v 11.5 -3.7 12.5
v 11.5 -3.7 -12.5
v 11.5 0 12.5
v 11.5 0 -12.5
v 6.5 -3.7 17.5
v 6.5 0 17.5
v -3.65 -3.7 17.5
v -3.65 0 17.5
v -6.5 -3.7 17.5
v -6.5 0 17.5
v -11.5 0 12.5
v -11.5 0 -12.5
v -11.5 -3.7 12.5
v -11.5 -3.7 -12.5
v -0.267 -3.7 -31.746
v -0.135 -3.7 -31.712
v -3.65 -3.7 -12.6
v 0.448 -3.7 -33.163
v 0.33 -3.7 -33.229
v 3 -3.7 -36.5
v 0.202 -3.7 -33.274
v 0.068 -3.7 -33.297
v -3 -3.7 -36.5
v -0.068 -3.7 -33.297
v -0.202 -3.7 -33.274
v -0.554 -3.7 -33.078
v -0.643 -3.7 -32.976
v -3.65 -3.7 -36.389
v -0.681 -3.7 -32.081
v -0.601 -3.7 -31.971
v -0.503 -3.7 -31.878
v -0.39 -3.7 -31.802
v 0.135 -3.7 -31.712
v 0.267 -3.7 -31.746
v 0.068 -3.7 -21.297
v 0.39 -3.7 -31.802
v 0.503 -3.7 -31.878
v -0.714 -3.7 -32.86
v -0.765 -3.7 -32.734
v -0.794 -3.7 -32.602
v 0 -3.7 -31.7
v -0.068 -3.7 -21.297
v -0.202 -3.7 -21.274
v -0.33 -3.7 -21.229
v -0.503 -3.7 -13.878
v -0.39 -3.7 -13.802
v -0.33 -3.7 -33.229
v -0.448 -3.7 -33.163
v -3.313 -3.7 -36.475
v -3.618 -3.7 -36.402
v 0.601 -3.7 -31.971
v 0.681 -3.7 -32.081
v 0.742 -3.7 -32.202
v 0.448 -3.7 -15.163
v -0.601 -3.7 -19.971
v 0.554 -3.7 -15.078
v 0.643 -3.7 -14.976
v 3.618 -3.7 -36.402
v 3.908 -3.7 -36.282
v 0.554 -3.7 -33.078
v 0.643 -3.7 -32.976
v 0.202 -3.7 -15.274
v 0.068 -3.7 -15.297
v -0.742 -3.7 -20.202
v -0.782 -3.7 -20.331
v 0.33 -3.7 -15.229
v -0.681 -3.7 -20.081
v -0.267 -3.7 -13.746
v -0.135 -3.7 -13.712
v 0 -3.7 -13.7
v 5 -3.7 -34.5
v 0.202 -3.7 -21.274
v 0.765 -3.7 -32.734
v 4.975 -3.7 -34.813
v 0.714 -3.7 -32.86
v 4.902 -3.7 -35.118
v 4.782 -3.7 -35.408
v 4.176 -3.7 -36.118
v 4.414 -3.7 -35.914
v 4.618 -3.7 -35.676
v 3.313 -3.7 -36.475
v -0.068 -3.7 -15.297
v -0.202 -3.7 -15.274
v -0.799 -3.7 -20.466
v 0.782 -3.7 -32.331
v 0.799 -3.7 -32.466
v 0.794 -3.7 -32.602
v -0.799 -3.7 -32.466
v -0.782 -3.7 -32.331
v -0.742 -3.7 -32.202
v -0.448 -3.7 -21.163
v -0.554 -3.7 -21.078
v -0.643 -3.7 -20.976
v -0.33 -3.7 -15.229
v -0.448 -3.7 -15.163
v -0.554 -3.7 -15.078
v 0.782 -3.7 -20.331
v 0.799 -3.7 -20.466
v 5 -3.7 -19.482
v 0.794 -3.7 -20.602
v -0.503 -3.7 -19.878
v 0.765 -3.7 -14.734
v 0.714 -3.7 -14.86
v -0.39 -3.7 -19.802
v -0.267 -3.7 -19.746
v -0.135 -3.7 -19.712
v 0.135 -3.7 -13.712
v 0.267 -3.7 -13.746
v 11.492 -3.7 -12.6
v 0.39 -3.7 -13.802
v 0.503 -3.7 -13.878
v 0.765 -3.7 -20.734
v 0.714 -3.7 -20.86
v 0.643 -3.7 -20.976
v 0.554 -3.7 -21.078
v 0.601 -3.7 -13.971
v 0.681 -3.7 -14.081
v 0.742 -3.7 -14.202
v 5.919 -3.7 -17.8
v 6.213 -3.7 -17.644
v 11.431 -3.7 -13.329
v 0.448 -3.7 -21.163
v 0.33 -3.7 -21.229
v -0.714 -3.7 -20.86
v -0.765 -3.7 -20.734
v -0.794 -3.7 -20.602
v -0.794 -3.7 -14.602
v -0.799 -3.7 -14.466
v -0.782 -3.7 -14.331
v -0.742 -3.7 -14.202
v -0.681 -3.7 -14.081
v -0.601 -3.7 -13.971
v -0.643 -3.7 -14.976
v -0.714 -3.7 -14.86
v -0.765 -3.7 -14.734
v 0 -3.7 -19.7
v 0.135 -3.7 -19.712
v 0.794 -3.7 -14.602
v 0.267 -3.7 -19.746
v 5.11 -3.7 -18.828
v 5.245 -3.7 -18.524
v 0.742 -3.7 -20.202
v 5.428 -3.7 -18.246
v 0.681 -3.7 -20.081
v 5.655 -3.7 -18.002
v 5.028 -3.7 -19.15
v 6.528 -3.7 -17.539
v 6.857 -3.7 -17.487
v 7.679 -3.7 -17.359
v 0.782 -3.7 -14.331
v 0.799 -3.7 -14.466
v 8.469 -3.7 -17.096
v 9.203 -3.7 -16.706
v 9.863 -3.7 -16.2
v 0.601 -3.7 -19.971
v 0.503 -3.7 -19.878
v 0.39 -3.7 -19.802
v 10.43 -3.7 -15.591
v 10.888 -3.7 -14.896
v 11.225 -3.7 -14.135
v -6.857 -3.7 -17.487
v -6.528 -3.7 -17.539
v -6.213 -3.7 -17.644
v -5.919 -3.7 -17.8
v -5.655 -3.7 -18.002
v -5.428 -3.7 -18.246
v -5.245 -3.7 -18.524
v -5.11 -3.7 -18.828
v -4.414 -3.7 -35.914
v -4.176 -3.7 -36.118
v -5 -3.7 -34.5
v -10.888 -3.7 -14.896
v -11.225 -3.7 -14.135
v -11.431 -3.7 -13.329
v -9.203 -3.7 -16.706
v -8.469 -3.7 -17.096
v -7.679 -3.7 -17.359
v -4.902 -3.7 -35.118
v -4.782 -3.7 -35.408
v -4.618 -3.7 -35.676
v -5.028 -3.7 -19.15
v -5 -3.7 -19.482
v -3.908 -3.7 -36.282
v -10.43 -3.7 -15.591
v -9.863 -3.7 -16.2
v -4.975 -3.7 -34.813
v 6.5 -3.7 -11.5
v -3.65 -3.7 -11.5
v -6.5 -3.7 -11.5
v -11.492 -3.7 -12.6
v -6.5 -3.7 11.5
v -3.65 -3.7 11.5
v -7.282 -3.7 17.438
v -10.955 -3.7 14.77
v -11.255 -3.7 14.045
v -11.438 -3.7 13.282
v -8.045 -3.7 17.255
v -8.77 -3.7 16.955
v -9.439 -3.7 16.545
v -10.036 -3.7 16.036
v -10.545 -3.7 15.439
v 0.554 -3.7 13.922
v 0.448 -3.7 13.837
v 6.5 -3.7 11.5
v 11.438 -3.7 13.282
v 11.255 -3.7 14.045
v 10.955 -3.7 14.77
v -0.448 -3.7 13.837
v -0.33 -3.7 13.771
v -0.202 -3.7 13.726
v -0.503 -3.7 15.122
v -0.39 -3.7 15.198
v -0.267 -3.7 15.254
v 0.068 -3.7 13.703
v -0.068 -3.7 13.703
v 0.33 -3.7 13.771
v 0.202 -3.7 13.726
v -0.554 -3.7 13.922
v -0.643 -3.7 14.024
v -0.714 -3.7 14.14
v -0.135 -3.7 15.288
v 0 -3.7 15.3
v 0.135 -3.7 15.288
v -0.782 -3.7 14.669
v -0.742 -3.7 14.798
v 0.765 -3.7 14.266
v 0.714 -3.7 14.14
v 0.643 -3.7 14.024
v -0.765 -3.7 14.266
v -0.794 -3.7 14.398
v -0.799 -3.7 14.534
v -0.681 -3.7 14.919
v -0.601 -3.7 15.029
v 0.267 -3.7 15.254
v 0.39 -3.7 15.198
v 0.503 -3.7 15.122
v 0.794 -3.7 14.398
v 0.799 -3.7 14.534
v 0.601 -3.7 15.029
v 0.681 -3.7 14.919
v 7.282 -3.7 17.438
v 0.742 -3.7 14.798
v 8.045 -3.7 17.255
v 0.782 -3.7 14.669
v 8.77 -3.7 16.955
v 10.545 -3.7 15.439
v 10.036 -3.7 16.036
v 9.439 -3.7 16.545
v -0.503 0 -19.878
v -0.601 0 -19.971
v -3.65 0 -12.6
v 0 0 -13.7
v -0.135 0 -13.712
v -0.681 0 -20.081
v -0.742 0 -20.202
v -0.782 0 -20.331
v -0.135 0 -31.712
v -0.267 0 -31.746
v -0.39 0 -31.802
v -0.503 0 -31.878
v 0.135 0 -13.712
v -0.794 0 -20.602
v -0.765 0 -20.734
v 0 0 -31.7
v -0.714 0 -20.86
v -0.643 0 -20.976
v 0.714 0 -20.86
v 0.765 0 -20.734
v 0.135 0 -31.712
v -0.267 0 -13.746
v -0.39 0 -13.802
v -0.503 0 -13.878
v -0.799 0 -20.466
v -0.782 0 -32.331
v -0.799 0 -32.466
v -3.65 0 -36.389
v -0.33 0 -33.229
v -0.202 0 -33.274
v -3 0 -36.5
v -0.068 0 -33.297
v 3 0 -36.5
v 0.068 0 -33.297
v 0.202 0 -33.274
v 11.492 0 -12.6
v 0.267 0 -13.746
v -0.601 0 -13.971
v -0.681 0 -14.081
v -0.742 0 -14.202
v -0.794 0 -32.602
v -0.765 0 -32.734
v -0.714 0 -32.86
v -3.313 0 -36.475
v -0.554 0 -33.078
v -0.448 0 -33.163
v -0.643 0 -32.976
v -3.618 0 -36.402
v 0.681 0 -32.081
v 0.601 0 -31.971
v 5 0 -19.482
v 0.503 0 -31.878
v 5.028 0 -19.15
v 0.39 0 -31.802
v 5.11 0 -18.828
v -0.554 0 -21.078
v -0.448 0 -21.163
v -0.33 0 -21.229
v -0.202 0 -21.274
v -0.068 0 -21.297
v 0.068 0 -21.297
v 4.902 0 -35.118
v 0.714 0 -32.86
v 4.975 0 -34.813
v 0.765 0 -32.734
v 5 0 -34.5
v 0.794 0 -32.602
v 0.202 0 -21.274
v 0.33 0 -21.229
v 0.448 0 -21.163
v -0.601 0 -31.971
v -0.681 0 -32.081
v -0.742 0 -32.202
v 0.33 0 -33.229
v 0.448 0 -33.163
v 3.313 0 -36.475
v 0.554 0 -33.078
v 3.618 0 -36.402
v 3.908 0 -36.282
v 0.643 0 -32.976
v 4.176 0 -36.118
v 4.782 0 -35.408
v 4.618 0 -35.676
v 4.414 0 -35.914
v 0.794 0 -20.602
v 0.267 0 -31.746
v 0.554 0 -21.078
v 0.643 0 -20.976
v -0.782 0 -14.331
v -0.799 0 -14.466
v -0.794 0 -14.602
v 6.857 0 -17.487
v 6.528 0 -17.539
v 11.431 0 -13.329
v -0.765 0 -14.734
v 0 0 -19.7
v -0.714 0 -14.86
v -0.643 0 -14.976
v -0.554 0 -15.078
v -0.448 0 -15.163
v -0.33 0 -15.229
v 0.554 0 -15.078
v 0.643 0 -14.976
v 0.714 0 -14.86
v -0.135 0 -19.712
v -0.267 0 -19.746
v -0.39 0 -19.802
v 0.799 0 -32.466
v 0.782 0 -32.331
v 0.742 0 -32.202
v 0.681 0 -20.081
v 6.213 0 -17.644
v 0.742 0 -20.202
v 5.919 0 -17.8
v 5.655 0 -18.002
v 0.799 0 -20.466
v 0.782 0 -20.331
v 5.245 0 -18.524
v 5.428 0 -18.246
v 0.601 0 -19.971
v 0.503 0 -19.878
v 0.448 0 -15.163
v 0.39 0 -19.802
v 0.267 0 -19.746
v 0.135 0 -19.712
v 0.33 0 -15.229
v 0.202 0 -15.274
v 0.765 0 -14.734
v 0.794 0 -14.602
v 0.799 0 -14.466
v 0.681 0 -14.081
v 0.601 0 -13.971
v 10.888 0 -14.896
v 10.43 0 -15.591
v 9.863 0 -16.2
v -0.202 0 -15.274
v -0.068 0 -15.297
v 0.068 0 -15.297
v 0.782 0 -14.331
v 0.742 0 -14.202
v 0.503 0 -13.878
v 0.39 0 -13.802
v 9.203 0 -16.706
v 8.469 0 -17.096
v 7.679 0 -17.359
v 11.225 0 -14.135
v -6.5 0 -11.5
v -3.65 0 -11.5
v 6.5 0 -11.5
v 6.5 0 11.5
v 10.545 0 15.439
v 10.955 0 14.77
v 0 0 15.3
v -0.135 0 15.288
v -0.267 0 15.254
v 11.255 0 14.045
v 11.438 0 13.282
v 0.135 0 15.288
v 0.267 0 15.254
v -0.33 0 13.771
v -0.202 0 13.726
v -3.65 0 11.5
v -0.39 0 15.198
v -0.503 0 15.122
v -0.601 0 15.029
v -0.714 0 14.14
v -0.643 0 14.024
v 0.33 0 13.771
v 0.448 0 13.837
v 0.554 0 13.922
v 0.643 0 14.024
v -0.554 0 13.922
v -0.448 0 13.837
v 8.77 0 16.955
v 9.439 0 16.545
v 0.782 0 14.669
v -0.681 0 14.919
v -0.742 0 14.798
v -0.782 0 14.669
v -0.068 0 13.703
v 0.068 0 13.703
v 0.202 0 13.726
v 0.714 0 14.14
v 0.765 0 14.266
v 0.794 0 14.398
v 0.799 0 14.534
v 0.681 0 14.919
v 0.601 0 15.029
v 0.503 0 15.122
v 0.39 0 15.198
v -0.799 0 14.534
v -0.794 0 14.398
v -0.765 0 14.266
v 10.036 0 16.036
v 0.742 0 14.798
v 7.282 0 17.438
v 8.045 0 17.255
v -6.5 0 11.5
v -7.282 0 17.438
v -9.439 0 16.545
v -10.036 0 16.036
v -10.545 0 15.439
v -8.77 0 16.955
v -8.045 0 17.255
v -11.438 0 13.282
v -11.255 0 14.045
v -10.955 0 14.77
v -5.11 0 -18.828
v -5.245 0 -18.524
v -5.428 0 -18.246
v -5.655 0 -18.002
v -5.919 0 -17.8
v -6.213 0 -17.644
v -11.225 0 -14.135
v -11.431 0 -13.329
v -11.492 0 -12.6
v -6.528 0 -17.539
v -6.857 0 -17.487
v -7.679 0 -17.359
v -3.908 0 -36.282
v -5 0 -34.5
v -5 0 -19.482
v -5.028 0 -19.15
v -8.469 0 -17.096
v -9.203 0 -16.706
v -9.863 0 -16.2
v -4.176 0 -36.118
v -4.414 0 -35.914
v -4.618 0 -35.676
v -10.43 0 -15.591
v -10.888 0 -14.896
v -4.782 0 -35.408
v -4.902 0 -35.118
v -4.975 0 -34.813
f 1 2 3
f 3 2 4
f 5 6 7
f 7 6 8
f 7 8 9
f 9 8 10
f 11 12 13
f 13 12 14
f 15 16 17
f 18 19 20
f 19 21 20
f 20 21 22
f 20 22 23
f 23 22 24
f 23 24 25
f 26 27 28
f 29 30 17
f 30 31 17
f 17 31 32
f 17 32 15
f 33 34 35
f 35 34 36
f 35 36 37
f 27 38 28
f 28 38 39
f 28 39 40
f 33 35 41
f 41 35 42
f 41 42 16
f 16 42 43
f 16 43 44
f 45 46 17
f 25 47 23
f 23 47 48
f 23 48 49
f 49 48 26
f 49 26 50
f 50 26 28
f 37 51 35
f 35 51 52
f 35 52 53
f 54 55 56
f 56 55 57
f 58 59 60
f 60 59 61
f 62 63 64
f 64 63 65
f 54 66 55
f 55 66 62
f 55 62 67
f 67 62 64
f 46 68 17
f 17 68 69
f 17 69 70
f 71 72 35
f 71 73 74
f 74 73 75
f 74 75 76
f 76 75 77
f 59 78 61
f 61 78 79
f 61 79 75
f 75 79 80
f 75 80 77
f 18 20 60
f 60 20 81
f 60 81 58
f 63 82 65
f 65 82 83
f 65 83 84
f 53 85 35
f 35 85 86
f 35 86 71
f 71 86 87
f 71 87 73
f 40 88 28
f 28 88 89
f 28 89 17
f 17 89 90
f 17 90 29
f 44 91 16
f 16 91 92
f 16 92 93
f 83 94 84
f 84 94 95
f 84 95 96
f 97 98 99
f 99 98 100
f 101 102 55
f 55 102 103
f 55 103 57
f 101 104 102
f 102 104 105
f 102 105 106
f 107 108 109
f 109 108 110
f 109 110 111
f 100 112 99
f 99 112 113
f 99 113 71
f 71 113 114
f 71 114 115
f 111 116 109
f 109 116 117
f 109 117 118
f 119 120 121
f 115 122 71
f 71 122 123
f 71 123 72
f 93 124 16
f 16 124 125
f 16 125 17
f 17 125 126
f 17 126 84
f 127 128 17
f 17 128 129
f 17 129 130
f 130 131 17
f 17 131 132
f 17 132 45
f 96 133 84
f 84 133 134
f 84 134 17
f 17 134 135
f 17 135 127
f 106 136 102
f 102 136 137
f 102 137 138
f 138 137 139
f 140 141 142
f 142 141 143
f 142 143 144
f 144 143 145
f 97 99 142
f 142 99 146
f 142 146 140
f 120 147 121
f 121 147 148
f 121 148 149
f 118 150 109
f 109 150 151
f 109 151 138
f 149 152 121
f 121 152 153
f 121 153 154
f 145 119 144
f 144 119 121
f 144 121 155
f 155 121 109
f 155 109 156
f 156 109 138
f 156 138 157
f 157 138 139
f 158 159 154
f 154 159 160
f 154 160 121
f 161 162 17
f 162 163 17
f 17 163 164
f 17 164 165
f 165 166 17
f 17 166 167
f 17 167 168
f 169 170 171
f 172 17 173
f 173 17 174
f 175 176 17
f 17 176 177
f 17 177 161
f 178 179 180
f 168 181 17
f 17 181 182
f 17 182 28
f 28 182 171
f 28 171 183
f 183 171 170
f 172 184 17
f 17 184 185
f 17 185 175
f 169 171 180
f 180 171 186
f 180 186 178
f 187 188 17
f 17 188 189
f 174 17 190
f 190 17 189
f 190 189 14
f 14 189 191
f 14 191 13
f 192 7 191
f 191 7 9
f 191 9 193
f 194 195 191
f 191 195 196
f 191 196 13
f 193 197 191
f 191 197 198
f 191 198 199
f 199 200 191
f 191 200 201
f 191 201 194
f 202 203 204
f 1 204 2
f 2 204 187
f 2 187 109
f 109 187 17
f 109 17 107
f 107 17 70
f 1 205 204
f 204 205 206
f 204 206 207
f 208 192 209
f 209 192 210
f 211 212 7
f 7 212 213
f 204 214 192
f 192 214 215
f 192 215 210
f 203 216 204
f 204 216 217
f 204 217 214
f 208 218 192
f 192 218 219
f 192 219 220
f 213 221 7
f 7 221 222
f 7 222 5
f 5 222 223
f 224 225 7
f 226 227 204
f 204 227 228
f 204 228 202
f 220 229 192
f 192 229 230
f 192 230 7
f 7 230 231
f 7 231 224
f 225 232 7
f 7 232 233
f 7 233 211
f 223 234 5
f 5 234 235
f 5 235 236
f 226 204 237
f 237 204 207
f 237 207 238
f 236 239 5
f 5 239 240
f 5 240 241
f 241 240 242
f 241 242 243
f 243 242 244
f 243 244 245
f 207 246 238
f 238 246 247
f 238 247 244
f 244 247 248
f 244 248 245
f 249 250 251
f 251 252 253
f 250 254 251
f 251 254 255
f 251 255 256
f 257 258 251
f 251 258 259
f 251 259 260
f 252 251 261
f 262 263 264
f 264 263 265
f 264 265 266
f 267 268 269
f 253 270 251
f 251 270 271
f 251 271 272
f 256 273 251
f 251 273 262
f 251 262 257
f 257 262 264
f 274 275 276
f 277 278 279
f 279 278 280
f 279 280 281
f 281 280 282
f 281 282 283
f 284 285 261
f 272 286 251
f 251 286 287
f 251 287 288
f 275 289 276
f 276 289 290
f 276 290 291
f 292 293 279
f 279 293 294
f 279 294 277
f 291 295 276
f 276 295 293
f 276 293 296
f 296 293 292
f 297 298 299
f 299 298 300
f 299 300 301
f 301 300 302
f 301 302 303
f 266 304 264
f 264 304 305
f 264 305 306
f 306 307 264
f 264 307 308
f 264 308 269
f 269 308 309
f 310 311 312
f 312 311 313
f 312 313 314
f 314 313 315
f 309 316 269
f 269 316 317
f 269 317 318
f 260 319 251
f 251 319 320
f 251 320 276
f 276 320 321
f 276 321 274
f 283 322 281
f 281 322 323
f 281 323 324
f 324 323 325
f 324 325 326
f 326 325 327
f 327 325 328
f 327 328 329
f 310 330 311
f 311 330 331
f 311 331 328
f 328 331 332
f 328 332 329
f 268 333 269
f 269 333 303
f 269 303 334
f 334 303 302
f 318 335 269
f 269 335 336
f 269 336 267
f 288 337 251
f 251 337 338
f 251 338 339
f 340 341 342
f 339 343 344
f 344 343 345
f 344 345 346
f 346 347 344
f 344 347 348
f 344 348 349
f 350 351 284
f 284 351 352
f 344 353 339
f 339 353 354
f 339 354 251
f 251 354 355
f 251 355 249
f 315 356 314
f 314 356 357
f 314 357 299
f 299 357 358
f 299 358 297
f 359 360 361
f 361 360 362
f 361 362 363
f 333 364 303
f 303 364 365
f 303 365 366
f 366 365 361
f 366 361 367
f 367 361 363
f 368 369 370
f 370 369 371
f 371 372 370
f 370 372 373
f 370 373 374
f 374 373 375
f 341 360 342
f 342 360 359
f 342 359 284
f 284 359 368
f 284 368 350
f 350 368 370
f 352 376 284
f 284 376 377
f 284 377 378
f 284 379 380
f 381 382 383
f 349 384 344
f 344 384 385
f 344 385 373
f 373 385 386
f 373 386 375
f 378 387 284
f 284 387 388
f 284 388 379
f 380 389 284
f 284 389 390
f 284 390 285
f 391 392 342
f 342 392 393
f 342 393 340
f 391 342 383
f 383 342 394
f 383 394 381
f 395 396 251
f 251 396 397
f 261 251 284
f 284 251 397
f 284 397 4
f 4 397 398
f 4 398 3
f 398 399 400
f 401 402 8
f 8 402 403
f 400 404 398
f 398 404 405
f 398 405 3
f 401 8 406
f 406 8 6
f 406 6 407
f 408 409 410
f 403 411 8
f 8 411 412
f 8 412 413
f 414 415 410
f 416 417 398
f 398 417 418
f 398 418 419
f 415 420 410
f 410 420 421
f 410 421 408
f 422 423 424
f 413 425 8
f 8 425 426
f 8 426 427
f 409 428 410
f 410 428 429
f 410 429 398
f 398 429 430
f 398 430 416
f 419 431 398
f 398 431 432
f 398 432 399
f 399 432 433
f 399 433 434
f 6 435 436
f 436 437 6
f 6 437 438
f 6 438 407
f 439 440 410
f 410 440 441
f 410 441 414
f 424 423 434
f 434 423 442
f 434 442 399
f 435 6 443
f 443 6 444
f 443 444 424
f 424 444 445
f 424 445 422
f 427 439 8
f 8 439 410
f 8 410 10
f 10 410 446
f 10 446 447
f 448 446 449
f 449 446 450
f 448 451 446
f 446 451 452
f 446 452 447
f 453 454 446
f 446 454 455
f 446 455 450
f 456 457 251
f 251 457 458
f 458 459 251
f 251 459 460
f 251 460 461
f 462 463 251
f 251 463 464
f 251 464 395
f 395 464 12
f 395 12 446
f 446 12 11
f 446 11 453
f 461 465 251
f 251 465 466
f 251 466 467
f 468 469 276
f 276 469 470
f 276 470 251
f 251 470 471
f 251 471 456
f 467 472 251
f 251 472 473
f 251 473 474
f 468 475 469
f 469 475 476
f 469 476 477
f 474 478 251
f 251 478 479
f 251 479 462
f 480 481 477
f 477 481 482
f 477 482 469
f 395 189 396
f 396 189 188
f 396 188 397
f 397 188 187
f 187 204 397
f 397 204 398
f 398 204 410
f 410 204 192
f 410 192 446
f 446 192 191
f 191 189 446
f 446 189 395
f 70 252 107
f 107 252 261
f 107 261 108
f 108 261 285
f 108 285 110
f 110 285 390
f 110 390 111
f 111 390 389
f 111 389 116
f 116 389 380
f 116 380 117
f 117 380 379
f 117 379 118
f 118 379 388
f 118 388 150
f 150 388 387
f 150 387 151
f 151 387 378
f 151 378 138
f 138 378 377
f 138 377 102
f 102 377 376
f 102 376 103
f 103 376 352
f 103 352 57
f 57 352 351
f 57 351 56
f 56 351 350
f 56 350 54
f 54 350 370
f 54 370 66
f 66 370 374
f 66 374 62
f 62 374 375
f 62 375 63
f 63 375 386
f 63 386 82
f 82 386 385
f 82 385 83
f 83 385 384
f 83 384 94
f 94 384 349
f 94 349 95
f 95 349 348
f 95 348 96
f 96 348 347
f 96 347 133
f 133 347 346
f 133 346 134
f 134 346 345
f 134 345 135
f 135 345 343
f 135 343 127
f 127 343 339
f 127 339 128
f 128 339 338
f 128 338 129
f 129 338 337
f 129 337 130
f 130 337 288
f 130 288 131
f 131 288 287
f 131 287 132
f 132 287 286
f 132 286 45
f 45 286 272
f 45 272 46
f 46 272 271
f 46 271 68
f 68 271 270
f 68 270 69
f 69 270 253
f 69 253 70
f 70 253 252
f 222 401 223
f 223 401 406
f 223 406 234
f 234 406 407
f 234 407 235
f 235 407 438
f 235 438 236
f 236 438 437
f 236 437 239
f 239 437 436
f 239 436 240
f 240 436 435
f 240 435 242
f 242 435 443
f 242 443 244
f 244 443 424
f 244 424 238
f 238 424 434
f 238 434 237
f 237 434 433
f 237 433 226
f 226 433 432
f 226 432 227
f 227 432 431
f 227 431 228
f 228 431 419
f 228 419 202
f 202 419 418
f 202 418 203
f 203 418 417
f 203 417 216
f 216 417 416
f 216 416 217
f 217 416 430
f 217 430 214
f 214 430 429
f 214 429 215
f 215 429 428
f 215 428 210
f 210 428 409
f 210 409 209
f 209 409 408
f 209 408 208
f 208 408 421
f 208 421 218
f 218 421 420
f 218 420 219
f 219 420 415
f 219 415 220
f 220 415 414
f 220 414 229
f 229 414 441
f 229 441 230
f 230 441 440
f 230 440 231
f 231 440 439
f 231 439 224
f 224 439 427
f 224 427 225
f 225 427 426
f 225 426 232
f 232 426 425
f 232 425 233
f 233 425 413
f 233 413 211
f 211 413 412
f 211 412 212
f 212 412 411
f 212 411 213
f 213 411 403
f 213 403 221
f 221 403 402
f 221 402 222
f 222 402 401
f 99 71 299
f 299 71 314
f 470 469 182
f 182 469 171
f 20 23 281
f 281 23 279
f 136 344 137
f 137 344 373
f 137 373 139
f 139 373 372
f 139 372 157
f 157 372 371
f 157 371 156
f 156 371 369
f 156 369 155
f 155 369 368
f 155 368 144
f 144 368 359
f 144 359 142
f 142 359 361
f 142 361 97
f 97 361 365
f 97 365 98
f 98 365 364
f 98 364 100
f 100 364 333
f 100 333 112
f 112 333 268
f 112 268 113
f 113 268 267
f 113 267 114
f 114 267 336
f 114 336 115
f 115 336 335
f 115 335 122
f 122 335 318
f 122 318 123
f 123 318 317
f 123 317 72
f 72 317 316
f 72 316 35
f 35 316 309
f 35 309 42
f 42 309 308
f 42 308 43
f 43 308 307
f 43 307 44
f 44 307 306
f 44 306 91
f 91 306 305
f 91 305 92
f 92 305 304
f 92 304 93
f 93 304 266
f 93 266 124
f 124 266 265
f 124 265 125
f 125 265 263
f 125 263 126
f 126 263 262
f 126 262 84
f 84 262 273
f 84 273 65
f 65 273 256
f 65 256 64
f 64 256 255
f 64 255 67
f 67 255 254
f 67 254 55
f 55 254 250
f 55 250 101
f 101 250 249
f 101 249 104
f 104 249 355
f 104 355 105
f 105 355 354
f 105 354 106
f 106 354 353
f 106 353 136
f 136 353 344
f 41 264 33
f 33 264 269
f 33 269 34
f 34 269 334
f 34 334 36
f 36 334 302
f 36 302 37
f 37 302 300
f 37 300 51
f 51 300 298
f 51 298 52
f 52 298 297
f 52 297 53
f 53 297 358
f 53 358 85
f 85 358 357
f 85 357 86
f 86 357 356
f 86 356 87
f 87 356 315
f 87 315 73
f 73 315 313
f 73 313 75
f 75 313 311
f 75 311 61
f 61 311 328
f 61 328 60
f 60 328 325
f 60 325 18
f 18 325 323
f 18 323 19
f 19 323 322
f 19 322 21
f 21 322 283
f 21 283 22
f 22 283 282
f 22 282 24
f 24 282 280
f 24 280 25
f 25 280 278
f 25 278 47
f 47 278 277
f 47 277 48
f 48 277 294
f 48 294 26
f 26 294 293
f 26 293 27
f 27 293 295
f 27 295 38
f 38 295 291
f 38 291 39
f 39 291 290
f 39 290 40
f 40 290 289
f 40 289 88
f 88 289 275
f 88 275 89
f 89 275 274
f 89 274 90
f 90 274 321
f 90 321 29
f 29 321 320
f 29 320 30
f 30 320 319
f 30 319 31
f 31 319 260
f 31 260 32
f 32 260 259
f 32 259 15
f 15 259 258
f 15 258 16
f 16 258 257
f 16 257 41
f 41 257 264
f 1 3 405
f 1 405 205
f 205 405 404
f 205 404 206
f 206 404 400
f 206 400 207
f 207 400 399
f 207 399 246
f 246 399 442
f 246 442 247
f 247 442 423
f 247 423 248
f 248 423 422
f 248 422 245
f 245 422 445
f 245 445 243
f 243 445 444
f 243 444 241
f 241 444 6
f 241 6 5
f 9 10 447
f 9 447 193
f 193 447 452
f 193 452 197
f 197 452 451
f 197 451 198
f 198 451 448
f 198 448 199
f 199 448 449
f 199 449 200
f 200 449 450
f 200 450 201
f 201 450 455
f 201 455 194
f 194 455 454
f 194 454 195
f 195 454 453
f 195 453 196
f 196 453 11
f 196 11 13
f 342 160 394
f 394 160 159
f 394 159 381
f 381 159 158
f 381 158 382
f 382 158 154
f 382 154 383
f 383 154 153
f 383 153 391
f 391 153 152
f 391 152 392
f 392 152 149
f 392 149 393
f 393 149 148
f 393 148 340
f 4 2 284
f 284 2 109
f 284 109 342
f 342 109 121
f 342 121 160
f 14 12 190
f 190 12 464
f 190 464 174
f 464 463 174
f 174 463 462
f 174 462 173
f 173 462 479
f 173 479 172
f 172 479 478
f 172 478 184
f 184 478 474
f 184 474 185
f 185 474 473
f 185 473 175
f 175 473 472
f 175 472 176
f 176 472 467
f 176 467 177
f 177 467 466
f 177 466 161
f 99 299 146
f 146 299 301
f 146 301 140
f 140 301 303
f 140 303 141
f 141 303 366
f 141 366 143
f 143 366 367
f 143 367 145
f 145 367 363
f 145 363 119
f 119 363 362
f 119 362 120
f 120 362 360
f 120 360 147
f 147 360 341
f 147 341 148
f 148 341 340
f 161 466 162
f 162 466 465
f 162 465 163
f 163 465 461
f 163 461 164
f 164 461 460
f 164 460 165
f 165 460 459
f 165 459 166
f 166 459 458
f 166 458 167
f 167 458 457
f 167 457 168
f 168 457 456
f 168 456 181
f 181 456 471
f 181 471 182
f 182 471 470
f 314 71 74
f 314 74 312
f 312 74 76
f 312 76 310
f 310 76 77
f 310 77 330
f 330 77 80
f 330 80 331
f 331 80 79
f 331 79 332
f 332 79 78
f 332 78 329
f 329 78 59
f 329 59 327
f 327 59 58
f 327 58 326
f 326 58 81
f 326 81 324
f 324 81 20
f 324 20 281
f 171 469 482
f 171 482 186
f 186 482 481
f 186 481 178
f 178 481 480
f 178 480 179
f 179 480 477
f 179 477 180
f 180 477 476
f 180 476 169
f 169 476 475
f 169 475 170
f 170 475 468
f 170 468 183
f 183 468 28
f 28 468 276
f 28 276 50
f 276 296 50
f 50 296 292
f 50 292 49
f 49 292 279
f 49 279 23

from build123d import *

# Parameters (mm, degrees)
SKETCH2_W           = 23
SKETCH2_H           = 35
SKETCH2_W_2         = 13
SKETCH2_H_2         = 23
BOSS_EXTRUDE1_DEPTH = 3.7
SKETCH3_R           = 0.8
CUT_EXTRUDE1_DEPTH  = 4.7
SKETCH5_W           = 10
SKETCH5_H           = 3.7
BOSS_EXTRUDE3_DEPTH = 19
SKETCH7_R           = 0.8
CUT_EXTRUDE2_DEPTH  = 4.7
FILLET1_R           = 5
FILLET2_R           = 2


with BuildPart() as part:
    # Sketch2 → Boss-Extrude1 (new body)
    with BuildSketch(Plane(origin=(0, 0, 0), x_dir=(1, 0, 0), z_dir=(0, 1, 0))):
        Rectangle(SKETCH2_W, SKETCH2_H)
        Rectangle(SKETCH2_W_2, SKETCH2_H_2, mode=Mode.SUBTRACT)
    extrude(amount=-BOSS_EXTRUDE1_DEPTH)

    # Sketch3 → Cut-Extrude1 (cut, through all)
    with BuildSketch(Plane(origin=(0, 0, 0), x_dir=(1, 0, 0), z_dir=(0, 1, 0))):
        with Locations((0, 14.5)):
            Circle(SKETCH3_R)
        with Locations((0, -14.5)):
            Circle(SKETCH3_R)
    extrude(amount=-CUT_EXTRUDE1_DEPTH, mode=Mode.SUBTRACT)

    # Sketch5 → Boss-Extrude3 (add)
    with BuildSketch(Plane(origin=(0, 0, -17.5), x_dir=(-1, 0, 0), z_dir=(0, 0, -1))):
        with Locations((0, -1.85)):
            Rectangle(SKETCH5_W, SKETCH5_H)
    extrude(amount=BOSS_EXTRUDE3_DEPTH)

    # Sketch7 → Cut-Extrude2 (cut, through all)
    with BuildSketch(Plane(origin=(0, 0, 0), x_dir=(1, 0, 0), z_dir=(0, 1, 0))):
        with Locations((0, 32.5)):
            Circle(SKETCH7_R)
        with Locations((0, 20.5)):
            Circle(SKETCH7_R)
    extrude(amount=-CUT_EXTRUDE2_DEPTH, mode=Mode.SUBTRACT)

    # Fillet1
    fillet1_edges = [part.edges().sort_by_distance(p)[0] for p in [
        (11.5, -1.85, 17.5),
        (-11.5, -1.85, 17.5),
        (-11.5, -1.85, -17.5),
        (11.5, -1.85, -17.5),
    ]]
    fillet(fillet1_edges, radius=FILLET1_R)

    # Fillet2
    fillet2_edges = [part.edges().sort_by_distance(p)[0] for p in [
        (5, -1.85, -17.5),
        (-5, -1.85, -17.5),
        (5, -1.85, -36.5),
        (-5, -1.85, -36.5),
    ]]
    fillet(fillet2_edges, radius=FILLET2_R)


solid = part.part
